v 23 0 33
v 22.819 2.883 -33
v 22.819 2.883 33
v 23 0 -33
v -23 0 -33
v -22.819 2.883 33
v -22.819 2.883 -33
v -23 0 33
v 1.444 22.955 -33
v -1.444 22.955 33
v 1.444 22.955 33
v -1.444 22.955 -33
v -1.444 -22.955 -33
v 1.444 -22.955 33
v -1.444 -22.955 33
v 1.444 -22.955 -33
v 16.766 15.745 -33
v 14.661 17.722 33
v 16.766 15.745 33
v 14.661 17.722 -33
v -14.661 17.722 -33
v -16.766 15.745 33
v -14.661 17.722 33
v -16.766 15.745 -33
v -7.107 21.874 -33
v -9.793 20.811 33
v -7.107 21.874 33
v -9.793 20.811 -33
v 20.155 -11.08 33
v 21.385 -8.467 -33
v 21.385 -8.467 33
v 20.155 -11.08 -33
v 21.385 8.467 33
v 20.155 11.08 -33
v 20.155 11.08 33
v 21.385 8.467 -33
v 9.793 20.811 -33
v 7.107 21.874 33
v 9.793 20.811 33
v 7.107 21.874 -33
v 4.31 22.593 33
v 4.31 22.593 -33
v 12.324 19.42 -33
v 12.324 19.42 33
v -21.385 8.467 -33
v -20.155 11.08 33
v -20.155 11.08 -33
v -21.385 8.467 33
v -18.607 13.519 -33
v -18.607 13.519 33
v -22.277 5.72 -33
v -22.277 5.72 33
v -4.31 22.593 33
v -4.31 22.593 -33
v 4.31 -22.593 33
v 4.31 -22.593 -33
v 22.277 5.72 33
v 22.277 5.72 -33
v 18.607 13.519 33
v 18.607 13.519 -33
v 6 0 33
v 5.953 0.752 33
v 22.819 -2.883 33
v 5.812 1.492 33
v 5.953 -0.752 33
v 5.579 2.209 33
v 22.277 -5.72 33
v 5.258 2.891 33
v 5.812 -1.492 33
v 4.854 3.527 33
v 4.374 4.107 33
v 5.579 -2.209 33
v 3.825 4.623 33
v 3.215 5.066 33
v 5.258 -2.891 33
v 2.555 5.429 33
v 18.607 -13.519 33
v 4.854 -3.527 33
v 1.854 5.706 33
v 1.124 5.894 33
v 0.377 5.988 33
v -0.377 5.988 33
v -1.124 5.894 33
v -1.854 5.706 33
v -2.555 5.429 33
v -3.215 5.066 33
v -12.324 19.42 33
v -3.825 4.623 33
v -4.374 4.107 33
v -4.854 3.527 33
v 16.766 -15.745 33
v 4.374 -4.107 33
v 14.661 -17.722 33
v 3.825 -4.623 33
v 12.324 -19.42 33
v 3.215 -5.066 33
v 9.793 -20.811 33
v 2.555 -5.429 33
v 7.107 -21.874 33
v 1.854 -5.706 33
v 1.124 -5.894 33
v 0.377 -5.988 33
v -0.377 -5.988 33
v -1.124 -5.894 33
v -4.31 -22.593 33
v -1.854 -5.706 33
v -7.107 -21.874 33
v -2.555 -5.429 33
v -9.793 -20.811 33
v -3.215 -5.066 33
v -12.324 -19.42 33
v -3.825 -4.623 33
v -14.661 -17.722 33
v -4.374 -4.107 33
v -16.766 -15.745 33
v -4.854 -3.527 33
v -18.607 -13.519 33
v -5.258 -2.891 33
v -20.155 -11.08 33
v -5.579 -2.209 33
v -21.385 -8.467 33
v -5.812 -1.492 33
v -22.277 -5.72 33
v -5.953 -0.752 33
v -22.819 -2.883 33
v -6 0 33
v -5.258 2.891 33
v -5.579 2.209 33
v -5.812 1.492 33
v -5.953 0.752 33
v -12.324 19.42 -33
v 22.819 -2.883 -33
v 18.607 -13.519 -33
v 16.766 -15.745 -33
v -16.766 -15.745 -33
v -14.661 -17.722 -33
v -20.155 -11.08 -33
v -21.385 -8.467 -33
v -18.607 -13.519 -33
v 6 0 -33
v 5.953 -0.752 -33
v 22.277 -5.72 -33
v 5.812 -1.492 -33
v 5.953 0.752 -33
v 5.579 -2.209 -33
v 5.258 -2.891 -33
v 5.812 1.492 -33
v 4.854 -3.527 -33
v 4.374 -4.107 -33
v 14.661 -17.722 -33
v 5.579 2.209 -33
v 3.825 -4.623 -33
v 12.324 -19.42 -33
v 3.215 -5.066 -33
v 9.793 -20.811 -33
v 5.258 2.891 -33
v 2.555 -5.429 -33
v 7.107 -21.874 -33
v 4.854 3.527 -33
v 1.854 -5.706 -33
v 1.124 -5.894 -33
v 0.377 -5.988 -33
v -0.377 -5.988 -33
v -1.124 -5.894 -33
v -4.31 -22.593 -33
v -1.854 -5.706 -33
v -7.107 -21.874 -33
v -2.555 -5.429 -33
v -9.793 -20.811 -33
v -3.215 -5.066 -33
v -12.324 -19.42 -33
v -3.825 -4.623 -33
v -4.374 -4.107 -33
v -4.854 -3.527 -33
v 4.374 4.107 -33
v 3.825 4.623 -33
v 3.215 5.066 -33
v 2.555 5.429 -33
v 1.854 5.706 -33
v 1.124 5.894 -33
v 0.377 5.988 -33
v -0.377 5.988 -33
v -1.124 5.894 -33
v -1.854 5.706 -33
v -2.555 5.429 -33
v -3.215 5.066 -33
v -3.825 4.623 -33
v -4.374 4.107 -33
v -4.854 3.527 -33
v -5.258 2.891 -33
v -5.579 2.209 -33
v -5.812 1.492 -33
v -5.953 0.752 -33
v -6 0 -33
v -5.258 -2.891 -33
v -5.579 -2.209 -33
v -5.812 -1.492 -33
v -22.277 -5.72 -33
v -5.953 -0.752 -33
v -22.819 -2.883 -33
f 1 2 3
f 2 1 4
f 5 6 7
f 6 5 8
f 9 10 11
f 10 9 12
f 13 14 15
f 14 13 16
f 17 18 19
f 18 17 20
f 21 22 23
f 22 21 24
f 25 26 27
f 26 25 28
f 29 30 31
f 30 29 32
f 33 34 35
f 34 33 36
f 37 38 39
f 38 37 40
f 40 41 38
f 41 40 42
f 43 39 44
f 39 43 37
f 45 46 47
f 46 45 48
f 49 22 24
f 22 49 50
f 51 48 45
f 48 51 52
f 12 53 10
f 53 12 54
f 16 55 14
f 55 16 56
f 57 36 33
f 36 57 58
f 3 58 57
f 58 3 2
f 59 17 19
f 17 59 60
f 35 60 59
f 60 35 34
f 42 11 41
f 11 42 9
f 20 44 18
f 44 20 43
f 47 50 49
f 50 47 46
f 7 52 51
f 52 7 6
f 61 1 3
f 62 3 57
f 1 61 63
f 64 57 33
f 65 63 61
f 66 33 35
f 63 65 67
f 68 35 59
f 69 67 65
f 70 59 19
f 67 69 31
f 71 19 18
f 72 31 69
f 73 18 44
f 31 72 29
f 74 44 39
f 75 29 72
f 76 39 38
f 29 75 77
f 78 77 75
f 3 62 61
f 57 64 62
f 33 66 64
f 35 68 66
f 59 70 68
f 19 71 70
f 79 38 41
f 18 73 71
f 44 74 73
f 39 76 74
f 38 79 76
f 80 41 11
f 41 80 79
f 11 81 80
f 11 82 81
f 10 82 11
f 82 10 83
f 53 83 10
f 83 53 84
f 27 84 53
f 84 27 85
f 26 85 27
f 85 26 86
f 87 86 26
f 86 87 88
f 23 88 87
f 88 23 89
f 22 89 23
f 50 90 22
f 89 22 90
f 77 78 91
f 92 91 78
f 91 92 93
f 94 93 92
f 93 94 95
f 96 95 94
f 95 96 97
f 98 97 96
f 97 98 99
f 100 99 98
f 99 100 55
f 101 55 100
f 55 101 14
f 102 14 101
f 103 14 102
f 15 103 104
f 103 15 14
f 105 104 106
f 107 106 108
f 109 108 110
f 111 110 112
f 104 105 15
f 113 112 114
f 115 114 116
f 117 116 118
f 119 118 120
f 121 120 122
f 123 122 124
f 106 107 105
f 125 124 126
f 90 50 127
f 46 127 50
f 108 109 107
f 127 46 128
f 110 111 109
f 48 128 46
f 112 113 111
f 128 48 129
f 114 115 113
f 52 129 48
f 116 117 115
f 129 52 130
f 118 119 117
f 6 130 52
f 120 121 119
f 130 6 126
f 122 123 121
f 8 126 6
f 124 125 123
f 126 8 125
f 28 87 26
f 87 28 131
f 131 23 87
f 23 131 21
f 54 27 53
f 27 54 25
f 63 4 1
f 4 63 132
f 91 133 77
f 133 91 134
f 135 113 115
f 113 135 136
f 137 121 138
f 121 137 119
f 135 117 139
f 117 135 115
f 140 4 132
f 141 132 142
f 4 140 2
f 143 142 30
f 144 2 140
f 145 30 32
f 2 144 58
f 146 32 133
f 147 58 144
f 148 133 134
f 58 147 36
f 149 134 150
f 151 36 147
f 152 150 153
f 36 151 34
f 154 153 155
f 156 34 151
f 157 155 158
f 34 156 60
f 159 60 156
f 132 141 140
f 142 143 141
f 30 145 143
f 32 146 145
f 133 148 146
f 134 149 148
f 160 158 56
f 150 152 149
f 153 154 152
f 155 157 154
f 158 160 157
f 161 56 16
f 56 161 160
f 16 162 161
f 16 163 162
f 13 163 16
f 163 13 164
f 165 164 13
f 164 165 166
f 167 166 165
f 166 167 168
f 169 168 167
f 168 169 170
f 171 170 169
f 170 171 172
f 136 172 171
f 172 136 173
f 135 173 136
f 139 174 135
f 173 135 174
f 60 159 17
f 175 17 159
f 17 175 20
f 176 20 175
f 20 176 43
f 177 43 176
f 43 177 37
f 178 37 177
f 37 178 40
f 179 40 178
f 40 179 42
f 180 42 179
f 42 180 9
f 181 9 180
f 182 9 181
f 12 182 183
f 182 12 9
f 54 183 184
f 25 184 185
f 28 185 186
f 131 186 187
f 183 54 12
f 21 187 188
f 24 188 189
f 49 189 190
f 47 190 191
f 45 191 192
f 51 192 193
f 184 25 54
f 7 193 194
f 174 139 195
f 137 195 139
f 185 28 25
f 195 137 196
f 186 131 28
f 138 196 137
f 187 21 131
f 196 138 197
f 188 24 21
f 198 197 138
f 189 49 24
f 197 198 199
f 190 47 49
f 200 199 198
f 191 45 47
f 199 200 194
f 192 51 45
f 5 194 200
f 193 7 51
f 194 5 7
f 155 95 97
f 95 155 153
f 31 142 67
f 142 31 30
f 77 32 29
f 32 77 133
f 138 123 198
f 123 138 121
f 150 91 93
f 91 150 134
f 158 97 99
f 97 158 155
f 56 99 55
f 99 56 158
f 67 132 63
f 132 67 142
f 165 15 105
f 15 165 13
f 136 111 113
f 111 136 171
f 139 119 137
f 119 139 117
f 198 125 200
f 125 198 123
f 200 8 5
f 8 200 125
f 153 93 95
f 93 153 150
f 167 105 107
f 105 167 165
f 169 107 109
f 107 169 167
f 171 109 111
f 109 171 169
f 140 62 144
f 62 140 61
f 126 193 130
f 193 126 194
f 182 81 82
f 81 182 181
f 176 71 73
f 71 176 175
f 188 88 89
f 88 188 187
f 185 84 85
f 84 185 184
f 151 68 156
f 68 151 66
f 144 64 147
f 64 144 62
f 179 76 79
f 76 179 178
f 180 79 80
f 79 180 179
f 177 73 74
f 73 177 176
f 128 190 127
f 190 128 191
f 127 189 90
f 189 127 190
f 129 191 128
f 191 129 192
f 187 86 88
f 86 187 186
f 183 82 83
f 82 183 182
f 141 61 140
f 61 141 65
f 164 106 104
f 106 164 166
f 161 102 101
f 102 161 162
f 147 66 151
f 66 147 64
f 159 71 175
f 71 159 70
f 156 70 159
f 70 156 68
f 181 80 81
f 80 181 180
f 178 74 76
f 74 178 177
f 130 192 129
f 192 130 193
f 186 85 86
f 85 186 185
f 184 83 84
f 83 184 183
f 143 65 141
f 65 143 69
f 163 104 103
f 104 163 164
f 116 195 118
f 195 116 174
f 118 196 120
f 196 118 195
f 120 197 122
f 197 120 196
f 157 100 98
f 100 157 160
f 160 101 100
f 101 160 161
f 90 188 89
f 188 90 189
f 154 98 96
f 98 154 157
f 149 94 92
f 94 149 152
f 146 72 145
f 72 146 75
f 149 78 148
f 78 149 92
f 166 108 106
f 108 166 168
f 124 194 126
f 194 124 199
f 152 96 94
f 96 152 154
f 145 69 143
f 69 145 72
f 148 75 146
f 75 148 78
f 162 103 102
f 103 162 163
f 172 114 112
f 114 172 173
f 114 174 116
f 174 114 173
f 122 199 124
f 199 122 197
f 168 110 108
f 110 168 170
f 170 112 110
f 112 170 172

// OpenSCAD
$fn = 50;


difference() {
	union() {
		translate(v = [0, 0, -33.0000000000]) {
			cylinder(h = 66, r = 23.0000000000);
		}
	}
	union() {
		translate(v = [0, 0, -100.0000000000]) {
			cylinder(h = 200, r = 6);
		}
	}
}
